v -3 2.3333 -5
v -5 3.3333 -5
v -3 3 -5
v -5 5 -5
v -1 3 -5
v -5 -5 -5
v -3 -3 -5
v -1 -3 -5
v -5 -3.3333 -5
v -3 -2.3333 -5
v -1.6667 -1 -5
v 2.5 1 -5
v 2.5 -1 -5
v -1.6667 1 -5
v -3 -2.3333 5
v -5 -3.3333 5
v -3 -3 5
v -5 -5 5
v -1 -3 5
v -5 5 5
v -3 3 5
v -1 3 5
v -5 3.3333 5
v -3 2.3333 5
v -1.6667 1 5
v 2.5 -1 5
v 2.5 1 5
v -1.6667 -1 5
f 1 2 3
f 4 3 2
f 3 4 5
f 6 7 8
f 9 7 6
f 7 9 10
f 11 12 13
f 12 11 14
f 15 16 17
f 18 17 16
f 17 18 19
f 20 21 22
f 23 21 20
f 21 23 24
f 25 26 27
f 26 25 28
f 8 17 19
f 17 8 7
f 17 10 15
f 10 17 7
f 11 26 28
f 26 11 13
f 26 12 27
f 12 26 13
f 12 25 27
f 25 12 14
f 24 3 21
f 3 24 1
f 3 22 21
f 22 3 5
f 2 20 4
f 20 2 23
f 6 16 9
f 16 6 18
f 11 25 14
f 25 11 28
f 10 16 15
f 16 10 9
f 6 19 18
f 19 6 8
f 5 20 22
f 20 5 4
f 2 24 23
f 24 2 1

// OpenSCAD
// Generated by SolidPython 1.1.3 on 2025-02-20 04:04:08
$fn=50;


intersection() {
	translate(v = [-5.0000000000, -5.0000000000, -5.0000000000]) {
		linear_extrude(height = 10) {
			polygon(points = [[0, 0], [10, 0], [10, 2.0000000000], [2.0000000000, 2.0000000000], [2.0000000000, 4.0000000000], [7.5000000000, 4.0000000000], [7.5000000000, 6.0000000000], [2.0000000000, 6.0000000000], [2.0000000000, 8.0000000000], [10, 8.0000000000], [10, 10], [0, 10]]);
		}
	}
	rotate(a = -90, v = [0, 0, 1]) {
		translate(v = [-5.0000000000, -5.0000000000, -5.0000000000]) {
			linear_extrude(height = 10) {
				polygon(points = [[0, 0], [5.0000000000, 10], [10, 0], [8.3333333333, 0], [6.6666666667, 3.3333333333], [3.3333333333, 3.3333333333], [1.6666666667, 0]]);
			}
		}
	}
}
/***********************************************
*********      SolidPython code:      **********
************************************************
 
from solid import *
from solid.utils import *

import math
import matplotlib.pyplot as plt
import subprocess
import os

class Hole:
    def __init__(self, x, y, radius):
        """
        Hole defined by:
        :param x: x dimension for center point of the circle as a ratio of letter height
        :param y: y dimension for center point of the circle as a ratio of letter height
        :param radius: radius of circle as a ratio of letter height
        """
        self.x = x
        self.y = y
        self.radius = radius

class Letter3D:
    def __init__(self, name, outer_shape_points, height, holes=None):
        """
        3D Letter defined by:
        :param name: name of letter
        :param outer_shape_points: points defining the outer shape of the letter
        :param heigh: size of cube that letter fits inside
        :param holes: list of Holes
        """
        self.name = name
        self.outer_shape_points = outer_shape_points
        self.holes = holes if holes is None else []
        self.height = height


    def generate(self):
        shape = polygon(points=self.outer_shape_points)

        if self.holes:
            for hole in self.holes:
                circle_hole = circle(r=hole.radius*self.height)
                positioned_hole = translate([hole.x*self.height, hole.y*self.height])(circle_hole)
                shape = difference()(shape, positioned_hole)
        
        shape_3d = linear_extrude(height=self.height)(shape)
        shape_3d = translate([-self.height/2, -self.height/2, -self.height/2])(shape_3d)
        return shape_3d
    
    def render(self):
        scad_render_to_file(self.shape, f"output/{self.name}.scad", file_header='$fn=50;')
        subprocess.run(["C:\\Program Files\\OpenSCAD\\openscad.exe", "-o", f"output\\{self.name}.stl", f"output\\{self.name}.scad"])


class TwoLetter3D:
    def __init__(self, height, letterA, letterA_face, letterB=None, letterB_face=None):
        self.height = height
        self.letterA = letterA
        self.letterB = letterB
        self.letterA_face = letterA_face
        self.letterB_face = letterB_face

    def call_letter_generation(self, letter):
        letter = letter.upper()
        function_name = f"letter_{letter}"
        func = globals().get(function_name)
        if func is None:
            raise ValueError(f"No letter generation function defined for letter '{letter}'.")
        else:
            print(func)
        return func(self.height)
    
    def rotate_object(self, face, shape):
        face = face.lower()
        if face == "z":
            return shape
        if face == "x":
            return rotate(a=90, v=[0,1,0])(shape)
        if face == "y":
            return rotate(a=-90, v=[0,0,1])(shape)
        else:
            raise ValueError("Face must be one of 'x', 'y', or 'z'.")

    def render(self):
        if self.letterA:
            letterA3D = self.call_letter_generation(self.letterA)
            letterA3D = self.rotate_object(self.letterA_face, letterA3D)

        if self.letterB:
            letterB3D = self.call_letter_generation(self.letterB)
            letterB3D = self.rotate_object(self.letterB_face, letterB3D)
            combined = intersection()(letterA3D, letterB3D)
            file_name = self.letterA + self.letterB
            scad_render_to_file(combined, f"output/{file_name}.scad", file_header='$fn=50;')
            subprocess.run(["C:\\Program Files\\OpenSCAD\\openscad.exe", "-o", f"output\\{file_name}.stl", f"output\\{file_name}.scad"])
            return
        else:
            file_name = self.letterA
            scad_render_to_file(letterA3D, f"output/{file_name}.scad", file_header='$fn=50;')
            subprocess.run(["C:\\Program Files\\OpenSCAD\\openscad.exe", "-o", f"output\\{file_name}.stl", f"output\\{file_name}.scad"])
    
                

def arc_points(radius, start_angle, end_angle, center=[0,0], num_points=50):
    angles = [start_angle + i * (end_angle - start_angle) / (num_points - 1)
              for i in range(num_points)]
    points = [
        (center[0] + radius * math.cos(math.radians(angle)),
         center[1] + radius * math.sin(math.radians(angle)))
        for angle in angles
    ]
    return points

def letter_A(h):
    shape_points = [(0,0), (h/2, h), (h, 0), (5/6*h, 0), (2/3*h, 1/3*h), (1/3*h, 1/3*h), (h/6, 0)]
    holes = [Hole(1/2, 7/12, 1/6)]
    A = Letter3D("A", shape_points, h, holes)
    return A.generate()

def letter_B(h):
    top_arc_points = arc_points(h/4, 90, -90, center=[3/4*h, 3/4*h])
    bottom_arc_points = arc_points(h/4, 90, -90, center=[3/4*h, h/4])
    other_points = [(0,0),(0,h)]

    shape_points = top_arc_points + bottom_arc_points + other_points
    holes = [Hole(1/2, 3/4, 1/6), Hole(1/2, 1/4, 1/6)]
    B = Letter3D("B", shape_points, h, holes)
    return B.generate()

def letter_C(h):
    outer_arc_points = arc_points(h/2, 30, 330, center=[h/2,h/2])
    inner_arc_points = arc_points(h/4, 30, 330, center=[h/2,h/2])[::-1]
    shape_points = outer_arc_points + inner_arc_points
    # print(shape_points)
    C = Letter3D("C", shape_points, h)
    return C.generate()


def letter_D(h):
    outer_arc_points = arc_points(h/2, 90, -90, center= [h/2, h/2])
    shape_points = outer_arc_points + [(0,0), (0, h)]
    holes = [Hole(1/2, 1/2, 1/6)]
    D = Letter3D("D", shape_points, h, holes)
    return D.generate()

def letter_E(h):
    points = [(0,0), (h,0), (h,h/5), (h/5,h/5), (h/5,2/5*h), (3/4*h,2/5*h), (3/4*h,3/5*h), (h/5,3/5*h), (h/5,4/5*h), (h,4/5*h), (h,h), (0,h)]
    E = Letter3D("E", points, h)
    return E.generate()

def letter_F(h):
    points = [(0,0), (h/5,0), (h/5,2/5*h), (3/4*h,2/5*h), (3/4*h,3/5*h), (h/5,3/5*h), (h/5,4/5*h), (h,4/5*h), (h,h), (0,h)]
    F = Letter3D("F", points, h)
    return F.generate()

if __name__ == "__main__":
    os.makedirs("output", exist_ok=True)
    
    letters = [chr(x) for x in range(ord('A'), ord('F') + 1)]
    for letter in letters:
        for other_letter in letters:
            shape = TwoLetter3D(10, letter, "z", other_letter, "y")
            shape.render()
 
 
************************************************/
